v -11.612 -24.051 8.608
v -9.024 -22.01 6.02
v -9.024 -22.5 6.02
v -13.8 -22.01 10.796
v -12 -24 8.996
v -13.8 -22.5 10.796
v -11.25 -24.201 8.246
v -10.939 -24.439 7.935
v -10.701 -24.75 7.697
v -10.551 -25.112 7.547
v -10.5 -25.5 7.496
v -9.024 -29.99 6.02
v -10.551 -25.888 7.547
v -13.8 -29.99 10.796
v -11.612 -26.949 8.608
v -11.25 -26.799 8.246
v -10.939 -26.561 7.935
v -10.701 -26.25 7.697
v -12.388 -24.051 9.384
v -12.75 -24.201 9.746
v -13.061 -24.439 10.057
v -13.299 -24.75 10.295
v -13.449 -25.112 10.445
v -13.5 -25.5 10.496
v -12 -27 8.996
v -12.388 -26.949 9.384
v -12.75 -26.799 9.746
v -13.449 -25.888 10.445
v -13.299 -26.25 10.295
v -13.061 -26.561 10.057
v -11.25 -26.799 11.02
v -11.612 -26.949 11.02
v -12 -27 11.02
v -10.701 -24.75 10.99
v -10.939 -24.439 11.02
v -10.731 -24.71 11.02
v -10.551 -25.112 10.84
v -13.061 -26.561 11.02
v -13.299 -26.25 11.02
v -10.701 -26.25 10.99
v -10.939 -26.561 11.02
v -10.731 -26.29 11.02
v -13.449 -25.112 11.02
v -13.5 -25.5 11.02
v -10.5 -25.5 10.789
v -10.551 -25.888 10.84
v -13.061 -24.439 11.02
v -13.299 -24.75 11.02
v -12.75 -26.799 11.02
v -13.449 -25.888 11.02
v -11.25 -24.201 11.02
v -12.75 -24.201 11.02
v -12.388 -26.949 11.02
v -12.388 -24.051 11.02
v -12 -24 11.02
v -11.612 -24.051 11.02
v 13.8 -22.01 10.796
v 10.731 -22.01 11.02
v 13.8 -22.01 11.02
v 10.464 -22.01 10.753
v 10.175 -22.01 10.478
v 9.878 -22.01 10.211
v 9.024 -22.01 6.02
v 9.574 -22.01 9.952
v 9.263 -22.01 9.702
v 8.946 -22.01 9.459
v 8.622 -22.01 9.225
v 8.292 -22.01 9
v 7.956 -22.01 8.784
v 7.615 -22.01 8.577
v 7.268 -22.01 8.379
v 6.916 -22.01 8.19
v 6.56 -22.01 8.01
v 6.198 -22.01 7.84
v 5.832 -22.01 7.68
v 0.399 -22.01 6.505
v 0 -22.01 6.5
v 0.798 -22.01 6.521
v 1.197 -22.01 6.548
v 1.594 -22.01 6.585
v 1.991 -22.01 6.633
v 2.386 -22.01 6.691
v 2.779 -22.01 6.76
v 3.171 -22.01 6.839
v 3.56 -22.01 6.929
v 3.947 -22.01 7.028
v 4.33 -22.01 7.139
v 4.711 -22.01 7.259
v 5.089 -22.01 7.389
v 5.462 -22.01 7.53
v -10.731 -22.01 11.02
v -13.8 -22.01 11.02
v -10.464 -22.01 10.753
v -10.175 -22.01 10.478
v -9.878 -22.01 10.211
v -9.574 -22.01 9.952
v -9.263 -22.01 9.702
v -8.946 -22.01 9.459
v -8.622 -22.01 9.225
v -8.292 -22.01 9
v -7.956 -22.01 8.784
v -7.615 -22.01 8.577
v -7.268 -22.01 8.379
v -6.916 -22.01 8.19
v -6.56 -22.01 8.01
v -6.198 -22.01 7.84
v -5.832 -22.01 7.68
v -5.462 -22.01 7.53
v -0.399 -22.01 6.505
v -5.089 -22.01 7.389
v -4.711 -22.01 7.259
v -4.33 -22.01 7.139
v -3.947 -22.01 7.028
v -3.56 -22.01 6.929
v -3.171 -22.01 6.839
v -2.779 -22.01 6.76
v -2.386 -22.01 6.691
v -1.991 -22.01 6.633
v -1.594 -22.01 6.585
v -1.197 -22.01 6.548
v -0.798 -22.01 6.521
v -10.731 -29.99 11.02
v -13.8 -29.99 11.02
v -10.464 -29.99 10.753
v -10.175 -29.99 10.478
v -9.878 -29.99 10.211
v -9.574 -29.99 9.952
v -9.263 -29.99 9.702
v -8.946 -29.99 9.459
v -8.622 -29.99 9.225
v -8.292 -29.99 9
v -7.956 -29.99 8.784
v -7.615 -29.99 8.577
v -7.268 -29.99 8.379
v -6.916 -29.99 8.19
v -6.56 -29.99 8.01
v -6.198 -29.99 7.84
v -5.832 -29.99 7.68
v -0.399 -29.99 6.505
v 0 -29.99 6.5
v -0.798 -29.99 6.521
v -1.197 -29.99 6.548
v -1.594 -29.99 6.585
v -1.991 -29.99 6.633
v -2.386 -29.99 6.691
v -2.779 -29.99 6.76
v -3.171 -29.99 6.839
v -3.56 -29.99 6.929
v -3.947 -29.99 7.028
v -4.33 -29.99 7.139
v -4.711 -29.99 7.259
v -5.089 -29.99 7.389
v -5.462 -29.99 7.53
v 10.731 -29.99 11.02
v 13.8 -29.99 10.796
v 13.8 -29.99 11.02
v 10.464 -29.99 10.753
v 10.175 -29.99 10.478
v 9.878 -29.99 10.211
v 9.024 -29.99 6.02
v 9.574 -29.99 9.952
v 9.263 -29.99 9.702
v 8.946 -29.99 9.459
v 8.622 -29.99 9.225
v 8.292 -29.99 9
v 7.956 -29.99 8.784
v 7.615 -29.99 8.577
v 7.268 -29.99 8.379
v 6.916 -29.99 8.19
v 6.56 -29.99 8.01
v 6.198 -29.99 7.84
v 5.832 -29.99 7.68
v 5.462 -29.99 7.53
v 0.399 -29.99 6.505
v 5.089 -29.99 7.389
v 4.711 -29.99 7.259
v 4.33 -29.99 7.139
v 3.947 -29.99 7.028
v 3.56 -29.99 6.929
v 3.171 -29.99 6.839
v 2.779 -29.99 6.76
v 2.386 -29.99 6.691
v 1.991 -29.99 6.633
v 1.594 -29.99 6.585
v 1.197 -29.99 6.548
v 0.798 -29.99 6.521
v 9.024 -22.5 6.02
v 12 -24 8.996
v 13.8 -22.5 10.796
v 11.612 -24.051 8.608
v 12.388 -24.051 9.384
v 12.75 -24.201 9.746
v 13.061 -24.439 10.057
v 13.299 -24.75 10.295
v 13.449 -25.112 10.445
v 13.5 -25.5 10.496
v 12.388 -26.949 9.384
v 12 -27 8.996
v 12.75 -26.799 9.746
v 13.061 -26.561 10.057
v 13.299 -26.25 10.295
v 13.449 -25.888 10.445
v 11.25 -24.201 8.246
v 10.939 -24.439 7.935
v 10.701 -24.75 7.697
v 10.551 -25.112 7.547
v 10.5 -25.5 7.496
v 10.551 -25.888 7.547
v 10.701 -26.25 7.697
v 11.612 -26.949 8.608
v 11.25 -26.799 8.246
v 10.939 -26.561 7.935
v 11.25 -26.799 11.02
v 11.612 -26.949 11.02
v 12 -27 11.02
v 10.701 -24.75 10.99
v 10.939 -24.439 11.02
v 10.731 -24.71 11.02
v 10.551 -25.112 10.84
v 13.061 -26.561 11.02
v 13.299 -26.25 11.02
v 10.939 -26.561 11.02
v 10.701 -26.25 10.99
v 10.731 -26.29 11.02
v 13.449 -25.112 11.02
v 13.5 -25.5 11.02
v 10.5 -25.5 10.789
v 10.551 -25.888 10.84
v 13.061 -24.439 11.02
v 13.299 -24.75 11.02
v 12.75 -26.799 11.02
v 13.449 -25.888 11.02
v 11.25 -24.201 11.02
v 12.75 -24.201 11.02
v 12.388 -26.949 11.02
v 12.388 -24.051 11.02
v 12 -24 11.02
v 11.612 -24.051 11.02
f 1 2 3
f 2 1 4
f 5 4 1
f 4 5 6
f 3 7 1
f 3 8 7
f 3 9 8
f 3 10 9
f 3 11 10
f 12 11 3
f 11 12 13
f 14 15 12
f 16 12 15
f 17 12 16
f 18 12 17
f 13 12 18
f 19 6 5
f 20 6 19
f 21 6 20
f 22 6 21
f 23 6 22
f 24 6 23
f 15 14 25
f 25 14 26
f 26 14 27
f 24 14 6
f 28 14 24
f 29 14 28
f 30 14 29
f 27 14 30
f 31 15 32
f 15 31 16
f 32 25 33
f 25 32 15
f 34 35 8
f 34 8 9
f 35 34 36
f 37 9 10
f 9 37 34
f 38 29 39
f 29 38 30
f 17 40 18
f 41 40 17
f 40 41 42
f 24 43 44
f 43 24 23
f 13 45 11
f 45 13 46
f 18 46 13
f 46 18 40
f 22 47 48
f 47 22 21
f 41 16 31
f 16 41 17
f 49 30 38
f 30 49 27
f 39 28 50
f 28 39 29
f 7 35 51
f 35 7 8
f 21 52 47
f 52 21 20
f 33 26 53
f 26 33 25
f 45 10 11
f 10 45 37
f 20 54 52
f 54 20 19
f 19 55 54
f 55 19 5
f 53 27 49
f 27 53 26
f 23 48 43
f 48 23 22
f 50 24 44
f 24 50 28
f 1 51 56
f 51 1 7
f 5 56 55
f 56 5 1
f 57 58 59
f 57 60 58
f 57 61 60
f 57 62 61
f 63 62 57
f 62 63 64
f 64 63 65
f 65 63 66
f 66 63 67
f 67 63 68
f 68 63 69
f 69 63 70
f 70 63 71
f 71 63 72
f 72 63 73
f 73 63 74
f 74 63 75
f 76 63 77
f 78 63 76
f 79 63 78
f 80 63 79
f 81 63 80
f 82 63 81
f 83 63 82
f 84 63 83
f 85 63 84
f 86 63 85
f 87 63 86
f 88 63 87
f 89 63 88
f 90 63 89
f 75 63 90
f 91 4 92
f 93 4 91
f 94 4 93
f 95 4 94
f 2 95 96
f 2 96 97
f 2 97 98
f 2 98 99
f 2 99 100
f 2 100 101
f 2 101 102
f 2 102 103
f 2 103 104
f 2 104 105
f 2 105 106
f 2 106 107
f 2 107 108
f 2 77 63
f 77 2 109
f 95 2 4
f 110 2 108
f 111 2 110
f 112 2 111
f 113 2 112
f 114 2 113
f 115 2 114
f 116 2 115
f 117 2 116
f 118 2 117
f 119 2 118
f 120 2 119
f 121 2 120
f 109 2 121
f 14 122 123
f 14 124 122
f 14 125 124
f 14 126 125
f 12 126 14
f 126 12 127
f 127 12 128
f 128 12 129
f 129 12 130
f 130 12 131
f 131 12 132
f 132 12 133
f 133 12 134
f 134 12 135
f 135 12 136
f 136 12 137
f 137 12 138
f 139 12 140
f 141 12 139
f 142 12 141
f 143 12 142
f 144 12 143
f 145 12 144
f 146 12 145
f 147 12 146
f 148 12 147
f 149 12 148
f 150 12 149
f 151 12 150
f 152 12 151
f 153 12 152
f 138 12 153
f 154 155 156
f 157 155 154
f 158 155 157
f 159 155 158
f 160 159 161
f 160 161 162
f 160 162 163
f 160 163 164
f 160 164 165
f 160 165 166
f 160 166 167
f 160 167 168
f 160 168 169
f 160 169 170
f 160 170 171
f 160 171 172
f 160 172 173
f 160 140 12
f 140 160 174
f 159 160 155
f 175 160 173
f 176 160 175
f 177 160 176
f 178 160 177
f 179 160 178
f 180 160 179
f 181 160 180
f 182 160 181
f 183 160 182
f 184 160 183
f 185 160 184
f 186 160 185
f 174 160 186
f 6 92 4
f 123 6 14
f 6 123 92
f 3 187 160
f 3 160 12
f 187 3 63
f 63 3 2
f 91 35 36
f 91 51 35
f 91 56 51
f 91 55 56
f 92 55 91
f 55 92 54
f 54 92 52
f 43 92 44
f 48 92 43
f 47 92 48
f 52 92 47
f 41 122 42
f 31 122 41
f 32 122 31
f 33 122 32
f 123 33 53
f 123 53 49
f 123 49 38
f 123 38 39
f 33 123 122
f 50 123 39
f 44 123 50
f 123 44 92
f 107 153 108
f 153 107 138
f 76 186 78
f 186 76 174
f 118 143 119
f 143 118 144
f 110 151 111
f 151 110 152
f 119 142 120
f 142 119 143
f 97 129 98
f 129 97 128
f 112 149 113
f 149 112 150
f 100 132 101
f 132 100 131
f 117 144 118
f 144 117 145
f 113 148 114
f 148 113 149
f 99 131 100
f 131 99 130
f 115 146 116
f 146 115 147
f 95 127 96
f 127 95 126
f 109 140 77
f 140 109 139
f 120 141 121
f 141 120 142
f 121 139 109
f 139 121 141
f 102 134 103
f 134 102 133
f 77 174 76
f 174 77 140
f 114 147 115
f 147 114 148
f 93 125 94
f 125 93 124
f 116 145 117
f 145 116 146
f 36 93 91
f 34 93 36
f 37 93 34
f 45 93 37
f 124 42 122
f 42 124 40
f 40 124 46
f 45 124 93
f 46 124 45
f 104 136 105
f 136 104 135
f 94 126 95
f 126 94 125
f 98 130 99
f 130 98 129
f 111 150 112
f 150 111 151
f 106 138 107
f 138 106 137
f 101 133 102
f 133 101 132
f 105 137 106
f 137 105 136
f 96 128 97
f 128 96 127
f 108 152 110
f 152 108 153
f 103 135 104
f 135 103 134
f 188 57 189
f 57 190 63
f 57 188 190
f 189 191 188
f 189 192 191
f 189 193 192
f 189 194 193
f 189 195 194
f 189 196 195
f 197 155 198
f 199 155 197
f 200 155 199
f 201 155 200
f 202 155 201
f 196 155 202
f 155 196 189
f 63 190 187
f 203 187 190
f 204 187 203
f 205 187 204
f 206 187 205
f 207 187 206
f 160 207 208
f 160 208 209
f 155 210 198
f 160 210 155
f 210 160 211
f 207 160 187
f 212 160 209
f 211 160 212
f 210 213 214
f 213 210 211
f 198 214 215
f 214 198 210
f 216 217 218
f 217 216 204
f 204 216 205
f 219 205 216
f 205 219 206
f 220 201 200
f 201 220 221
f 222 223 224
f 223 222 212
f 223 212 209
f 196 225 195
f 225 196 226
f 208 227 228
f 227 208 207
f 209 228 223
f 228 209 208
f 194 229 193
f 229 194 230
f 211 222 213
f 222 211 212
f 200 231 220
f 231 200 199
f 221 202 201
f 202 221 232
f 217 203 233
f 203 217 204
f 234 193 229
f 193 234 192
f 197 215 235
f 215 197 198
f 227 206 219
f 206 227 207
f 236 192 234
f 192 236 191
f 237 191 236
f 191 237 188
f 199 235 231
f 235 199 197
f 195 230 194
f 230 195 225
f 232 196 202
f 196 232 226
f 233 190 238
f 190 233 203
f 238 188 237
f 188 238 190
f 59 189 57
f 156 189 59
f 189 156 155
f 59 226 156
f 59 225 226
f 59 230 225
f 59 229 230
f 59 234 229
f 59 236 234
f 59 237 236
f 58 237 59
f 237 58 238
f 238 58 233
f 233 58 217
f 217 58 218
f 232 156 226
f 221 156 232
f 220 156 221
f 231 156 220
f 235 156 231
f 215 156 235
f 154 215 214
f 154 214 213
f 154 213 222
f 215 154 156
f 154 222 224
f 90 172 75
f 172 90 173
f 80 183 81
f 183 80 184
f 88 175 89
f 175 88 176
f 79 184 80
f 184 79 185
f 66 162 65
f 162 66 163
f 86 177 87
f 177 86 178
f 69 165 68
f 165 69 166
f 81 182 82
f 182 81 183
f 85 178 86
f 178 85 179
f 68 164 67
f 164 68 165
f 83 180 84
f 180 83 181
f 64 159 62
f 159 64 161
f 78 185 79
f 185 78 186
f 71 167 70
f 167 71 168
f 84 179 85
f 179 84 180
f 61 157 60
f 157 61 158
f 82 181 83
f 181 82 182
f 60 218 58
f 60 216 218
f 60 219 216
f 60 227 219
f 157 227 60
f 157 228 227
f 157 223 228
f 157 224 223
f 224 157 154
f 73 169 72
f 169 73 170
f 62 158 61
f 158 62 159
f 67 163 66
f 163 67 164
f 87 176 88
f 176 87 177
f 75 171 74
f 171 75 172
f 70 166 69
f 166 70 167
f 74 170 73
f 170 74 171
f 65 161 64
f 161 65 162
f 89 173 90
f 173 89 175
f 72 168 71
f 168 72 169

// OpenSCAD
// file: ../../ref/vendor/_linear_rail.scad
include <../components.scad>

module ref_linear_rail(l,h,w,E,P) {
    // w_r = 12;
    // h_r = 8;
    // D = 6;
    // h = 3.4;
    // d = 3.5;
    // P = 25;
    // E = 10;
    module rail_end() {
        difference() {
            cube([E, h, w], center=true);
            rotate([270,0,0])
                translate([E/2, 0, -h/2])
                    bolt_shcs_m3(h=w);
        }
    }
    module rail_sect() {
        difference() {
            cube([P, h, w], center=true);
            rotate([270,0,0]) {
                translate([P/2, 0, -(h/2)])
                    bolt_shcs_m3(h=h);
                translate([-P/2, 0, -(h/2)])
                    bolt_shcs_m3(h=w);
            }
        }
    }

    tot_length = (l - (E*2));
    // echo(tot_length);
    sect_length = tot_length - (tot_length % P);
    // echo(sect_length);
    sect_count = sect_length/P;
    // echo(sect_count);

    translate([(sect_length/2 + E*2-2.5),0,0])
        rotate([0,180,0])
        rail_end();
    translate([-(sect_length/2 + E*2-2.5),0,0])
        rail_end();

    translate([-sect_length/2,0,0])
        for(i = [0:1:sect_count]) {
            translate([P*i,0,0])
                rail_sect();
        }
}

module ref_linear_rail_carriage(l,w,h,c,b) {
    // w = 27;
    // b = 20;
    // b_1 = 3.5;
    // c = 20;
    // l_1 = 32.4;
    // l = 45.4;
    // h = 10;

    translate([0,-3,0])
    difference() {
        cube([l, h, w], center=true);
        rotate([90,0,0]) {
            translate([0,0,5]) {
                translate([c/2,b/2,-3]) // top right
                    bolt(d=3, h=20);
                translate([c/2,-b/2,0]) // bottom right
                    bolt(d=3, h=20);
                translate([-c/2,b/2,0]) // top left
                    bolt(d=3, h=20);
                translate([-c/2,-b/2,0]) // bottom left
                    bolt(d=3, h=20);
            }
        }
    }
}
// file: ../../ref/vendor/linear_rails.scad
include <./_linear_rail.scad>

module ven_mgn12h() {
    color([0.2,0.2,0.2])
        ref_linear_rail(l=300,h=3.4,w=12,E=10,P=25);
    color([0.4,0.4,0.4])
        ref_linear_rail_carriage(l=45.4,w=27,h=10,c=20,b=20);
}

module ven_mgn9h() {
    color([0.2,0.2,0.2])
        ref_linear_rail(l=160,h=3.5,w=9,E=7.5,P=20);
    color([0.4,0.4,0.4])
        ref_linear_rail_carriage(l=39.9,w=20,h=8,c=16,b=15);
}
// file: ../../ref/vendor/fans.scad
module ven_fan4010() {
    module _4010_corner() {
        difference() {
            cube([20,20,10]);
            translate([32/2+1.5,32/2+1.5,4]) { // Top corner
                cylinder(d=5,h=10);
                translate([-2.5,0,0])
                    cube([5,10,10]);
                translate([0,-2.5,0])
                    cube([10,5,10]);
                translate([2.5,2.5,0])
                    cube([7.5,7.5,10]);
            }
        }
    }
    difference() {
        union() {
            _4010_corner();
            mirror([1,0,0])
                _4010_corner();
            mirror([0,1,0])
                _4010_corner();
            mirror([1,1,0])
                _4010_corner();
        }
        translate([0,5,2.01])
            cylinder(d=28, h=8);
    }
}

module ven_fan2510() {
    cube([25, 25, 10]);
}
// file: ../../ref/components/bolts.scad
module bolt(d, h=8) {
    cylinder(d=d, h=h, center=true);
}

module _bolt_v(d,hh=0,r=0.2) {
    vh = r*5;
    vz = hh+(vh/2);
    difference() {
        translate([0,0,vz])
            cylinder(d=d + 0.01, h=vh, center=true);
        rotate([0,0,0]) {
            translate([d/2,0,vz])
                cube([d/2,d,vh+0.01],center=true);
            translate([-d/2,0,vz])
                cube([d/2,d,vh+0.01],center=true);
        }
        rotate([0,0,0]) {
            translate([0,d/2,vz+r*2])
                cube([d,d/2,1],center=true);
            translate([0,-d/2,vz+r*2])
                cube([d,d/2,vh+0.01],center=true);
        }
        rotate([0,0,45]) {
            translate([0,d/2,vz+r*3])
                cube([d,d/2,vh+0.01],center=true);
            translate([0,-d/2,vz+r*3])
                cube([6,3,vh+0.01],center=true);
        }
        rotate([0,0,-45]) {
            translate([0,d/2,vz+r*4])
                cube([d,d/2,vh+0.01],center=true);
            translate([0,-d/2,vz+r*4])
                cube([d,d/2,vh+0.01],center=true);
        }
    }
}

module bolt_shcs(hd,hh,td,th,
        he, v=false, r=0.2) {
    // hd = head diameter
    // hh = head height
    // td = thread diameter
    // th = thread height
    // he = head extension
    // v = vertical supports
    // r = support resolution
    union() {
        translate([0,0,hh/2-0.01]) // Socket head
            cylinder(d=hd + 0.01, h=hh + 0.05, center=true);
        if (he>0) {
            translate([0,0,-he/2]) // Head extension
                cylinder(d=hd+0.01,h=he,center=true);
        }
        translate([0,0,th/2+hh]) // Threading
            cylinder(d=td, h=th, center=true);
        if (v==true) {
            _bolt_v(hd,hh,r);
        }
    }
}

module bolt_shcs_m2_5(h=8,v=false,r=0.2,he=0) {
    bolt_shcs(hd=5,hh=2.5,th=h,v=v,r=r,he=he);
}

module bolt_shcs_m3(h=8,v=false,r=0.2,he=0) {
    bolt_shcs(hd=6,hh=3,td=3,th=h,v=v,r=r,he=he);
}
// file: ../../ref/components/3dp.scad
module heatset(d=5,h=4,b=3,H=0) {
    // d = inset diameter
    // h = height (length)
    // b = bolt diameter
    // H = bolt height
    union() {
        translate([0,0,h/2-0.01])
            cylinder(h=h+0.02, d=d, center=true);
        translate([0,0,h+H/2 - 0.01])
            bolt(d=b, h=H);
    }
}

module heatset_m3x4(H=0) { // VORON BOM heatset
    heatset(d=4.3, h=4+0.1, b=3+0.2, H=H);
}

module ecas04() { // This is used to cut a spot for an ECAS04 fitting
    ecas04_d = 8.1;
    ecas04_d_1 = 10;
    ecas04_h = 8;
    ecas04_h_1 = 2.4;

    cylinder(d=ecas04_d + 0.3, h=ecas04_h+0.01);
    translate([0,0,0])
        cylinder(d=ecas04_d+1, h=ecas04_h-ecas04_h_1);
}
// file: ../src/probes/beacon.scad
module xb_pr_beacon() {
    translate([0,d_cr_pr_d,-40]) {
        difference() {
            cube([31.6+4, 12*2, 1], center=true);
            translate([31.6/2, 3.5,-3])
                cylinder(h=5,d=3);
            translate([-31.6/2, 3.5,-3])
                cylinder(h=5,d=3);
        }
        color([0.8,0,0, 0.2]) cylinder(h=15, d=20);
        color([0.8,0,0, 0.2]) cylinder(h=30, d=20);
        translate([0,0,-2])
            color([0.8,0,0, 0.2]) cube([31.6+4, 12*2, 3], center=true);
    }
}
// file: ../src/carriages/mgn9h.scad
include <../carriage.scad>

module xb_cr_mgn9h() {
    // c=16,b=15

    module mgn12h_bolts() {
        translate([0,-3,0])
        rotate([270,90,0]) {
            translate([15/2,16/2,0])
                bolt_shcs_m3(h=5);
            translate([-15/2,16/2,0])
                bolt_shcs_m3(h=5);
            translate([15/2,-16/2,0])
                bolt_shcs_m3(h=5);
            translate([-15/2,-16/2,0])
                bolt_shcs_m3(h=5);
        }
    }
    difference() {
        xb_cr();
        mgn12h_bolts();
    }
}
// file: ../src/carriages/mgn12h.scad
include <../carriage.scad>

module xb_cr_mgn12h() {
    // c=20, b=20

    module mgn12h_bolts() {
        translate([0,-3,0])
        rotate([270,90,0]) {
            translate([20/2,20/2,0])
                bolt_shcs_m3(h=5);
            translate([-20/2,20/2,0])
                bolt_shcs_m3(h=5);
            translate([20/2,-20/2,0])
                bolt_shcs_m3(h=5);
            translate([-20/2,-20/2,0])
                bolt_shcs_m3(h=5);
        }
    }
    difference() {
        xb_cr();
        mgn12h_bolts();
    }
}
// file: ../src/hotend.scad
module xb_he_bolts() {
    module _xb_he_bolt() {
        translate([d_m_he_w/2,-31-2,d_m_he_h])
        rotate([-90,-90,0])
            bolt_shcs_m3(h=30);
    }
    union() {
        _xb_he_bolt();
        mirror([d_m_he_w,0,0])
            _xb_he_bolt();
    }
}

module xb_fp_hs() {
    module _xb_fp_hs() {
        translate([d_m_fp_w,-48,d_m_fp_h])
        rotate([-90,0,0])
            heatset_m3x4(H=4);
    }
    _xb_fp_hs();
    mirror([1,0,0])
        _xb_fp_hs();
}

module xb_he_led() {
    translate([-10/2,-50,d_m_he_h-7-0.01])
    cube([10,10,8]);
}

module xb_he_mount() {
    module _xb_he_mount() {
        translate([d_m_he_w/2-5,-54,d_m_he_h+5])
        rotate([0,75,0])
            cube([15,24,12]);
    }
    union() {
        _xb_he_mount();
        mirror([d_m_he_w,0,0])
            _xb_he_mount();
        xb_he_bolts();
    }
}

module xb_he() {
    module _xb_he_base() {
        translate([0,-28-d_cr_d-2,d_cr_ht-5])
            cube([d_cr_wt/2+2+2,28,5]); // Top
        translate([d_cr_wt/2-12,-28-d_cr_d-2,d_cr_ht-5-4.5])
            cube([10+4+2,28,4.5]); // Bottom
        translate([d_cr_wt/2+2,-22-d_cr_d-2,d_cr_ht-5-10])
            cube([2,22,6]); // Side
        difference() { // 2510 Press
            translate([0,-36,d_cr_ht-5-8])
                cube([14,5,8]);
            translate([0,-38,d_cr_ht-5-10])
                cube([8,8,10]);
        }
        translate([0,-48,d_cr_ht-9.5])
            cube([14,16,9.5]); // Front
        translate([16.5,-36,d_cr_ht-9.5])
            cylinder(h=9.5,d=15); // Front side
        translate([14,-42,d_cr_ht-9.5])
            cylinder(h=9.5,d=12); // Front chamfer
    }
    difference() {
        union() {
            _xb_he_base();
            mirror([d_cr_wt/2,0,0])
                _xb_he_base();
        }
        xb_em_cut();
        translate([0,-21.5,0.5-0.01])
            cylinder(d=32,h=10);
        xb_cr_hs_he();
        xb_he_mount();
        xb_fp_hs();
        xb_he_led();
        translate([d_cr_wt/2+0.01,-d_cr_d-2-4+0.01,d_cr_ht-10-0.01])
            cube([2,4,12]); // Right EM cutout
        translate([-d_cr_wt/2-2.01,-d_cr_d-2-4+0.01,d_cr_ht-10-0.01])
            cube([2,4,12]); // Left EM cutout
        translate([-d_cr_wt/2-6,-d_cr_d-20,d_cr_ht-15-0.01])
            cube([d_cr_wt+12,6,10]); // Wire cutout
    }
}
// file: ../src/fan_housing.scad
module xb_fh_bolts() {
    module _xb_fh_bolt() {
        translate([-d_m_fh_w/2+2,-14,d_m_fh_h-5.5])
        rotate([-90,90,0])
        translate([-5.5,2,0]) {
            bolt_shcs_m3(10);
        }
    }
    _xb_fh_bolt();
    mirror([-d_max_w/2,0,0])
        _xb_fh_bolt();
}

module xb_du_bolts() {
    module _du_bolt() {
        translate([d_max_w/2+2.5,2.5,-36.5+2.5])
        rotate([0,-90,0]) {
            bolt_shcs_m3(16);
            translate([0,35,-0])
                bolt_shcs_m3(16);
        }
    }
    translate([0,-42.01 - d_cr_d,0]) {
        _du_bolt();
        mirror([1,0,0])
            _du_bolt();
    }
}

module xb_fh_bolt_cut() {
    module _xb_fh_bolt() {
        translate([-d_max_w/2,-2,d_m_fh_h-5])
        translate([14,40,0])
        rotate([90,90,0])
        translate([-5.5,2,0]) {
            bolt(d=3, h=12);
            translate([0,0,3+5])
                bolt(d=6, h=12);
        }
    }
    _xb_fh_bolt();
    mirror([-d_max_w/2,0,0])
        _xb_fh_bolt();
}

module xb_fh_2510_cut() {
    rotate([90,90,0]) {
        for (i=[10,-10]) {
            translate([i,i,0]) {
                bolt(d=3,h=20);
            }
            translate([i,-i,0]) {
                bolt(d=3,h=20);
            }
        }
        translate([0,0,-10])
        cylinder(d=21,h=20);
    }
    translate([0,0,0])
        cube([25.5,10.5,25.5],center=true); // Fan
}

module xb_fh_4010_cut() {
    module _4010_base() {
        translate([d_max_w/2-12,40.5,4.5])
        rotate([90,90,0]) {
            difference() {
                translate([0,0,-4])
                    cube([40.5,10.5,44.5]); // Main body
                translate([-0.01,4,40.5-5 + 0.01]) { // Top corner
                    translate([2.5,0,2.5])
                    rotate([-90,0,0])
                        cylinder(d=5,h=8);
                    translate([-.5,0,0])
                        cube([3,10,5]);
                    translate([0,0,2.5])
                        cube([5,10,3]);
                }
                translate([35.5+0.01,4,40.5-5 + 0.01]) { // Bottom corner
                    translate([2.5,0,2.5])
                    rotate([-90,0,0])
                        cylinder(d=5,h=8);
                    translate([2.5,0,0])
                        cube([5,10,3]);
                    translate([0,0,2.5])
                        cube([5,10,3]);
                }
            }
            translate([2.5,10.5-0.01,0])
                cube([40-4,10,40-4]); // Fan blades
            translate([40,1.25,10/2-1])
                cube([10,8,30]); // Exhaust
        }
    }
    _4010_base();
    mirror([d_max_w,0,0])
        _4010_base();
}

module _xb_fh_cr_mount() {
    translate([-14,37,d_m_fh_h-4])
    rotate([0,0,-45])
    difference() {
        rotate([0,0,45])
            cube([5,5,8]);
        translate([-0.01, -0.01, -0.01])
        cube([10,10,10]);
    }
}

module xb_fh() {
    module _xb_fh_4010() {
        module _xb_4010_base() {
            translate([d_max_w/2-14,42+0.01,6.5])
            rotate([90,90,0]) {
                difference() {
                    cube([44,2+10,42]);
                    translate([40.01,3,-0.01])
                        cube([20,12,42-5]);
                }
            }
            _xb_fh_cr_mount();
        }

        difference() {
            union() {
                _xb_4010_base();
                mirror([d_max_w,0,0])
                    _xb_4010_base();
            }
            xb_fh_4010_cut();
            xb_fh_bolt_cut();
        }
    }
    module _xb_fh_2510() {
        w = 25.5+3.5;
        h = 25.5 + 3;
        module _xb_2510_base() {
            translate([0,0,0])
                cube([w,11+1.2-0.01,h], center=true);
        }
        difference() {
            _xb_2510_base();
            translate([0,1,1.5+0.01])
                xb_fh_2510_cut();
        }
    }

    module _xb_fh_wire() {
        rotate([0,-90,0])
        // cube([8,4,12]);
        linear_extrude(40, convexity=2) polygon(
                points=[
                    [10,-20], [10,-10],
                    [5,0],
                    [0,-10], [0,-20],
                ]
            );
    }

    // _xb_fh_2510();

    difference() {
        translate([0,-42.01 - d_cr_d,-.5])
        union() {
            _xb_fh_4010();
            translate([0,6.1,-7.75])
                _xb_fh_2510();
        }
        xb_du_bolts();
        translate([20,-12,-28])
            _xb_fh_wire();
        translate([-20,-10+0.01,-15])
        cube([40,4,14]);
    }


}

module xb_fh_brace() {
    module _fh_brace() {
        difference() {
            translate([-d_m_fh_w/2-1.5,-d_cr_d-5-0.02,d_m_fh_h-4.5+0.01])
                cube([d_m_fh_w/2+2,5,8-0.02]);
            translate([0,-42.01 - d_cr_d,-1])
                _xb_fh_cr_mount();
            translate([0,-42.01 - d_cr_d,1])
                _xb_fh_cr_mount();
            translate([0,-21.5,-40])
                cylinder(d=30,h=50);
            translate([0,-42.01 - d_cr_d,-.5])
                xb_fh_bolt_cut();
        }
    }
    union() {
        _fh_brace();
        mirror([1,0,0])
            _fh_brace();
    }
}
// file: ../src/extruder.scad
module xb_em_cut() {
    translate([0,-21.5,0])
    cylinder(h=50,d=4.5);
    //
    //
}

module xb_em() {
    module _em_mount() {
        module _em_base() {
            translate([0,-21,d_cr_ht]) {
                cube([d_cr_wt/2,19,5]);
                translate([0,13,-5])
                    cube([d_cr_wt/2, 2, 5]);
                translate([0,-0.5,0])
                    cylinder(h=5,d=10);
                // translate([0,14,5])
                // cube([d_cr_wt/2,5,5]);
            }
        }
        difference() {
            _em_base();
            xb_em_cut();
            xb_cr_hs_he();
            xb_cr_probe_cut();
        }
    }

    union() {
    _em_mount();
    mirror([d_cr_wt,0,0])
        _em_mount();
    }
}
// file: ../src/carriage.scad
// module xb_cr_hs_em() { // Extruder mounting holes
//     module _xb_cr_em() {
//         rotate([90,0,0])
//             translate([d_m_em_w/2,d_m_em_h,-d_cr_em_o])
//                 heatset_m3x4(H=20);
//     }
//     _xb_cr_em();
//     mirror([d_m_em_w/2,0,0])
//         _xb_cr_em();
// }

module xb_cr_hs_he() { // Hotend/Extruder holes
    module _xb_cr_he() {
        rotate([90,0,0])
            translate([d_m_he_w/2,d_m_he_h,0])
                heatset_m3x4(H=20);
    }
    _xb_cr_he();
    mirror([d_m_he_w/2,0,0])
        _xb_cr_he();
}

module xb_cr_hs_fh() { // Fan housing holes
    module _xb_cr_fh() {
        rotate([90,0,0])
            translate([d_m_fh_w/2, d_m_fh_h,0])
                heatset_m3x4(H=20);
    }
    _xb_cr_fh();
    mirror([d_m_he_w/2,0,0])
        _xb_cr_fh();
}

module xb_cr_hs_pr() { // Probe mounting holes
    translate([(d_cr_pr_o-d_cr_pr_w)/2, d_cr_d/2+d_cr_pr_d-d_m_pr_o,(-d_cr_hb + d_cr_pr_h)+4])
        heatset_m3x4(H=1);
}

module xb_cr_pr() { // Probe mount
    module _xb_cr_pr() {
        difference() {
            translate([(d_cr_pr_o-d_cr_pr_w)/2,0,-d_cr_hb + d_cr_pr_h*2])
            union() {
                translate([0,0,0])
                    cube([d_cr_pr_w,d_cr_d,d_cr_pr_h], center=true);
                translate([0,(d_cr_pr_d+d_cr_d)/2,0])
                    cube([d_cr_pr_w,d_cr_pr_d,d_cr_pr_h], center=true);
            }
            xb_cr_hs_pr();
        }
    }
    translate([0,-d_cr_d/2,0]) {
        _xb_cr_pr();
        mirror([d_cr_w/2,0,0])
            _xb_cr_pr();
    }
}

module xb_cr_em() { // Extruder mount
    module _xb_cr_em() {
        translate([0,-d_cr_d+d_cr_em_o,d_cr_ht])
            cube([d_cr_em_w/2,d_cr_em_d,d_cr_em_h]);
    }
    _xb_cr_em();
    mirror([d_cr_em_w,0,0])
        _xb_cr_em();
}

module xb_cr_pr_cut() {
    b = -(d_cr_d-3);
    f = d_cr_pr_d;
    l1 = d_cr_pr_o - d_cr_w-2;
    l2 = d_cr_pr_o - d_cr_w;
    module _xb_pr_cut() {
        translate([0,0,-d_cr_hb-0.01])
        linear_extrude(5+0.02, convexity=2) polygon(
            points=[
                [-0.01,b], [l1,b], [l2,0.01],
                [l2,f], [-0.01,f]
            ]
        );
    }
    _xb_pr_cut();
    mirror([d_cr_pr_o,0,0])
        _xb_pr_cut();
}

module xb_cr_pr_wire_cut() {
    union() {
        translate([0,d_cr_pr_wire/2+0.01,0])
        rotate([90,90,0]) {
            translate([-d_m_fh_h-5,d_m_fh_w/2-5,0])
                cylinder(h=d_cr_d*2, r=2); // bottom right fillet
            translate([-d_m_fh_h-5,-d_m_fh_w/2+5,0])
                cylinder(h=d_cr_d*2, r=2); // bottom left fillet
            translate([-d_m_fh_h-7,0,d_cr_d])
                cube([8,15,d_cr_d*2], center=true);
            translate([-d_m_fh_h-9,0,d_cr_d])
                cube([8,18.5,d_cr_d*2], center=true);
            translate([-d_m_fh_h-12.5,0,0])
                cylinder(h=d_cr_d*2, r=9.25); // top fillet
            translate([0,0,d_cr_pr_wire]) // wire passthrough
                cube([35,d_cr_pr_wire,d_cr_pr_wire], center=true);
            translate([-d_cr_ht-1,0,-0.01]) // wire passthrough
                cube([d_cr_pr_wire,d_cr_pr_wire,12], center=true);
        }
    }
}


module xb_cr_belt_cut() {
    bw = 9 + 0.4;
    module _xb_cr_belt_cut() {
        module _xb_cr_belt_top() {
            translate([d_cr_w/2,-d_cr_d+0.01,0])
            union() {
                translate([0,d_cr_d,bw/2+1])
                    cube([8,3,bw], center=true);
                translate([0,d_cr_d-4.5,bw/2+1])
                    cube([5,1.5,bw], center=true);
                translate([-4,d_cr_d-3,1])
                    cylinder(h=bw, d=5.5);
            }
        }
        union() {
            _xb_cr_belt_top();
            mirror([0,0,1])
                _xb_cr_belt_top(); // bottom belt
            translate([d_cr_w/2,-d_cr_d+0.01,0])
            translate([6,3,0]) // Side cut
                cube([12,d_cr_d*2,bw*2+2], center=true);
            translate([d_cr_w/2-4,-3,0]) { // Pin
                translate([0,0,-15])
                    cylinder(h=30, d=3.5);
                translate([0,0,15-0.01])
                    cylinder(h=30, d=3.5);
            }
        }
    }
    _xb_cr_belt_cut();
    mirror([d_cr_w/2,0,0])
        _xb_cr_belt_cut();
}

module xb_cr_belt_pin() {
    module _xb_cr_belt_pin() {
        color(c_ve) {
            translate([d_cr_w/2-4,-3,0]) { // Pin
                translate([0,0,-15])
                    cylinder(h=30, d=3);
            }
        }
    }
    _xb_cr_belt_pin();
    mirror([d_cr_w/2,0,0])
        _xb_cr_belt_pin();
}

module xb_cr() {
    module xb_cr_base() {
        translate([0,-d_cr_d/2,0]) {
            translate([0,0,d_cr_ht/2])
                cube([d_cr_wt, d_cr_d, d_cr_ht], center=true);
            translate([0,0,-(d_cr_hb/2)])
                cube([d_cr_wb, d_cr_d, d_cr_hb], center=true);
        }
        translate([d_cr_w/2,-d_cr_d,0]) { // Belt retainer
            translate([0,d_cr_d/2,0])
                cube([2,d_cr_d,20+4], center=true);
        }
    }


    union() {
        difference() {
            xb_cr_base();
            xb_cr_hs_he(); xb_cr_hs_fh();
            xb_cr_pr_wire_cut();
            xb_cr_belt_cut();
            xb_cr_pr_cut();
        }
        xb_cr_pr();
        difference() {
            xb_cr_em();
            // xb_cr_hs_em();
            xb_cr_pr_wire_cut();
            xb_cr_belt_cut();
        }
    }

}
// file: ../src/dimensions.scad
// ----- Carriage ----- //
d_max_w = 56;
d_max_h = 65;
d_max_d = 50;
d_cr_w = 40;
d_cr_wt = 48;
d_cr_wb = 40;
d_cr_d = 6;
d_cr_ht = 15.5;
d_cr_hb = 38;
d_cr_H = d_cr_ht + d_cr_hb;
// Hotend/Extruder mount holes
d_m_he_w = 42;
d_m_he_h = 13;
// Fan Housing mount holes
d_m_fh_w = 24.6;
d_m_fh_h = -25.5;
// Probe mount holes
d_m_pr_o = 4;
// Faceplate mount holes
d_m_fp_w = d_m_he_w/2-10;
d_m_fp_h = d_m_he_h-3;
// Extruder mount
d_cr_em_o = 3;
d_cr_em_w = d_cr_w;
d_cr_em_h = 5;
d_cr_em_d = d_cr_d-d_cr_em_o;
// Probe
d_cr_pr_o = 49;
d_cr_pr_w = 9;
d_cr_pr_h = 9;
d_cr_pr_d = 8;
d_cr_pr_off = -(d_cr_hb - 18);
d_cr_pr_wire = 4;
// file: ../../ref/vendor.scad
include <./vendor/fans.scad>
include <./vendor/linear_rails.scad>
// file: ../../ref/components.scad
include <./components/3dp.scad>
include <./components/bolts.scad>
// file: ../src/main.scad
$fa = 1;
$fs = 0.4;

include <../../lib/Chamfer.scad>

include <../../ref/components.scad>
include <../../ref/vendor.scad>

// ----- Base components ----- //
include <./dimensions.scad>

c_cr = [0.4,0.2,0.6];
c_em = [0.2,0.8,0.2];
c_he = [0.8,0.2,0.2];
c_fh = [0.2,0.8,0.8];

c_ve = [0.8,0.8,0.0,0.6];

include <./carriage.scad>
include <./extruder.scad>
include <./fan_housing.scad>
include <./hotend.scad>


// ----- Carriages ----- //
include <./carriages/mgn12h.scad>
include <./carriages/mgn9h.scad>

// ----- Probes ----- //
include <./probes/beacon.scad>
// main file
include <../src/main.scad>

rotate([-90,0,0])
xb_fh_brace();
